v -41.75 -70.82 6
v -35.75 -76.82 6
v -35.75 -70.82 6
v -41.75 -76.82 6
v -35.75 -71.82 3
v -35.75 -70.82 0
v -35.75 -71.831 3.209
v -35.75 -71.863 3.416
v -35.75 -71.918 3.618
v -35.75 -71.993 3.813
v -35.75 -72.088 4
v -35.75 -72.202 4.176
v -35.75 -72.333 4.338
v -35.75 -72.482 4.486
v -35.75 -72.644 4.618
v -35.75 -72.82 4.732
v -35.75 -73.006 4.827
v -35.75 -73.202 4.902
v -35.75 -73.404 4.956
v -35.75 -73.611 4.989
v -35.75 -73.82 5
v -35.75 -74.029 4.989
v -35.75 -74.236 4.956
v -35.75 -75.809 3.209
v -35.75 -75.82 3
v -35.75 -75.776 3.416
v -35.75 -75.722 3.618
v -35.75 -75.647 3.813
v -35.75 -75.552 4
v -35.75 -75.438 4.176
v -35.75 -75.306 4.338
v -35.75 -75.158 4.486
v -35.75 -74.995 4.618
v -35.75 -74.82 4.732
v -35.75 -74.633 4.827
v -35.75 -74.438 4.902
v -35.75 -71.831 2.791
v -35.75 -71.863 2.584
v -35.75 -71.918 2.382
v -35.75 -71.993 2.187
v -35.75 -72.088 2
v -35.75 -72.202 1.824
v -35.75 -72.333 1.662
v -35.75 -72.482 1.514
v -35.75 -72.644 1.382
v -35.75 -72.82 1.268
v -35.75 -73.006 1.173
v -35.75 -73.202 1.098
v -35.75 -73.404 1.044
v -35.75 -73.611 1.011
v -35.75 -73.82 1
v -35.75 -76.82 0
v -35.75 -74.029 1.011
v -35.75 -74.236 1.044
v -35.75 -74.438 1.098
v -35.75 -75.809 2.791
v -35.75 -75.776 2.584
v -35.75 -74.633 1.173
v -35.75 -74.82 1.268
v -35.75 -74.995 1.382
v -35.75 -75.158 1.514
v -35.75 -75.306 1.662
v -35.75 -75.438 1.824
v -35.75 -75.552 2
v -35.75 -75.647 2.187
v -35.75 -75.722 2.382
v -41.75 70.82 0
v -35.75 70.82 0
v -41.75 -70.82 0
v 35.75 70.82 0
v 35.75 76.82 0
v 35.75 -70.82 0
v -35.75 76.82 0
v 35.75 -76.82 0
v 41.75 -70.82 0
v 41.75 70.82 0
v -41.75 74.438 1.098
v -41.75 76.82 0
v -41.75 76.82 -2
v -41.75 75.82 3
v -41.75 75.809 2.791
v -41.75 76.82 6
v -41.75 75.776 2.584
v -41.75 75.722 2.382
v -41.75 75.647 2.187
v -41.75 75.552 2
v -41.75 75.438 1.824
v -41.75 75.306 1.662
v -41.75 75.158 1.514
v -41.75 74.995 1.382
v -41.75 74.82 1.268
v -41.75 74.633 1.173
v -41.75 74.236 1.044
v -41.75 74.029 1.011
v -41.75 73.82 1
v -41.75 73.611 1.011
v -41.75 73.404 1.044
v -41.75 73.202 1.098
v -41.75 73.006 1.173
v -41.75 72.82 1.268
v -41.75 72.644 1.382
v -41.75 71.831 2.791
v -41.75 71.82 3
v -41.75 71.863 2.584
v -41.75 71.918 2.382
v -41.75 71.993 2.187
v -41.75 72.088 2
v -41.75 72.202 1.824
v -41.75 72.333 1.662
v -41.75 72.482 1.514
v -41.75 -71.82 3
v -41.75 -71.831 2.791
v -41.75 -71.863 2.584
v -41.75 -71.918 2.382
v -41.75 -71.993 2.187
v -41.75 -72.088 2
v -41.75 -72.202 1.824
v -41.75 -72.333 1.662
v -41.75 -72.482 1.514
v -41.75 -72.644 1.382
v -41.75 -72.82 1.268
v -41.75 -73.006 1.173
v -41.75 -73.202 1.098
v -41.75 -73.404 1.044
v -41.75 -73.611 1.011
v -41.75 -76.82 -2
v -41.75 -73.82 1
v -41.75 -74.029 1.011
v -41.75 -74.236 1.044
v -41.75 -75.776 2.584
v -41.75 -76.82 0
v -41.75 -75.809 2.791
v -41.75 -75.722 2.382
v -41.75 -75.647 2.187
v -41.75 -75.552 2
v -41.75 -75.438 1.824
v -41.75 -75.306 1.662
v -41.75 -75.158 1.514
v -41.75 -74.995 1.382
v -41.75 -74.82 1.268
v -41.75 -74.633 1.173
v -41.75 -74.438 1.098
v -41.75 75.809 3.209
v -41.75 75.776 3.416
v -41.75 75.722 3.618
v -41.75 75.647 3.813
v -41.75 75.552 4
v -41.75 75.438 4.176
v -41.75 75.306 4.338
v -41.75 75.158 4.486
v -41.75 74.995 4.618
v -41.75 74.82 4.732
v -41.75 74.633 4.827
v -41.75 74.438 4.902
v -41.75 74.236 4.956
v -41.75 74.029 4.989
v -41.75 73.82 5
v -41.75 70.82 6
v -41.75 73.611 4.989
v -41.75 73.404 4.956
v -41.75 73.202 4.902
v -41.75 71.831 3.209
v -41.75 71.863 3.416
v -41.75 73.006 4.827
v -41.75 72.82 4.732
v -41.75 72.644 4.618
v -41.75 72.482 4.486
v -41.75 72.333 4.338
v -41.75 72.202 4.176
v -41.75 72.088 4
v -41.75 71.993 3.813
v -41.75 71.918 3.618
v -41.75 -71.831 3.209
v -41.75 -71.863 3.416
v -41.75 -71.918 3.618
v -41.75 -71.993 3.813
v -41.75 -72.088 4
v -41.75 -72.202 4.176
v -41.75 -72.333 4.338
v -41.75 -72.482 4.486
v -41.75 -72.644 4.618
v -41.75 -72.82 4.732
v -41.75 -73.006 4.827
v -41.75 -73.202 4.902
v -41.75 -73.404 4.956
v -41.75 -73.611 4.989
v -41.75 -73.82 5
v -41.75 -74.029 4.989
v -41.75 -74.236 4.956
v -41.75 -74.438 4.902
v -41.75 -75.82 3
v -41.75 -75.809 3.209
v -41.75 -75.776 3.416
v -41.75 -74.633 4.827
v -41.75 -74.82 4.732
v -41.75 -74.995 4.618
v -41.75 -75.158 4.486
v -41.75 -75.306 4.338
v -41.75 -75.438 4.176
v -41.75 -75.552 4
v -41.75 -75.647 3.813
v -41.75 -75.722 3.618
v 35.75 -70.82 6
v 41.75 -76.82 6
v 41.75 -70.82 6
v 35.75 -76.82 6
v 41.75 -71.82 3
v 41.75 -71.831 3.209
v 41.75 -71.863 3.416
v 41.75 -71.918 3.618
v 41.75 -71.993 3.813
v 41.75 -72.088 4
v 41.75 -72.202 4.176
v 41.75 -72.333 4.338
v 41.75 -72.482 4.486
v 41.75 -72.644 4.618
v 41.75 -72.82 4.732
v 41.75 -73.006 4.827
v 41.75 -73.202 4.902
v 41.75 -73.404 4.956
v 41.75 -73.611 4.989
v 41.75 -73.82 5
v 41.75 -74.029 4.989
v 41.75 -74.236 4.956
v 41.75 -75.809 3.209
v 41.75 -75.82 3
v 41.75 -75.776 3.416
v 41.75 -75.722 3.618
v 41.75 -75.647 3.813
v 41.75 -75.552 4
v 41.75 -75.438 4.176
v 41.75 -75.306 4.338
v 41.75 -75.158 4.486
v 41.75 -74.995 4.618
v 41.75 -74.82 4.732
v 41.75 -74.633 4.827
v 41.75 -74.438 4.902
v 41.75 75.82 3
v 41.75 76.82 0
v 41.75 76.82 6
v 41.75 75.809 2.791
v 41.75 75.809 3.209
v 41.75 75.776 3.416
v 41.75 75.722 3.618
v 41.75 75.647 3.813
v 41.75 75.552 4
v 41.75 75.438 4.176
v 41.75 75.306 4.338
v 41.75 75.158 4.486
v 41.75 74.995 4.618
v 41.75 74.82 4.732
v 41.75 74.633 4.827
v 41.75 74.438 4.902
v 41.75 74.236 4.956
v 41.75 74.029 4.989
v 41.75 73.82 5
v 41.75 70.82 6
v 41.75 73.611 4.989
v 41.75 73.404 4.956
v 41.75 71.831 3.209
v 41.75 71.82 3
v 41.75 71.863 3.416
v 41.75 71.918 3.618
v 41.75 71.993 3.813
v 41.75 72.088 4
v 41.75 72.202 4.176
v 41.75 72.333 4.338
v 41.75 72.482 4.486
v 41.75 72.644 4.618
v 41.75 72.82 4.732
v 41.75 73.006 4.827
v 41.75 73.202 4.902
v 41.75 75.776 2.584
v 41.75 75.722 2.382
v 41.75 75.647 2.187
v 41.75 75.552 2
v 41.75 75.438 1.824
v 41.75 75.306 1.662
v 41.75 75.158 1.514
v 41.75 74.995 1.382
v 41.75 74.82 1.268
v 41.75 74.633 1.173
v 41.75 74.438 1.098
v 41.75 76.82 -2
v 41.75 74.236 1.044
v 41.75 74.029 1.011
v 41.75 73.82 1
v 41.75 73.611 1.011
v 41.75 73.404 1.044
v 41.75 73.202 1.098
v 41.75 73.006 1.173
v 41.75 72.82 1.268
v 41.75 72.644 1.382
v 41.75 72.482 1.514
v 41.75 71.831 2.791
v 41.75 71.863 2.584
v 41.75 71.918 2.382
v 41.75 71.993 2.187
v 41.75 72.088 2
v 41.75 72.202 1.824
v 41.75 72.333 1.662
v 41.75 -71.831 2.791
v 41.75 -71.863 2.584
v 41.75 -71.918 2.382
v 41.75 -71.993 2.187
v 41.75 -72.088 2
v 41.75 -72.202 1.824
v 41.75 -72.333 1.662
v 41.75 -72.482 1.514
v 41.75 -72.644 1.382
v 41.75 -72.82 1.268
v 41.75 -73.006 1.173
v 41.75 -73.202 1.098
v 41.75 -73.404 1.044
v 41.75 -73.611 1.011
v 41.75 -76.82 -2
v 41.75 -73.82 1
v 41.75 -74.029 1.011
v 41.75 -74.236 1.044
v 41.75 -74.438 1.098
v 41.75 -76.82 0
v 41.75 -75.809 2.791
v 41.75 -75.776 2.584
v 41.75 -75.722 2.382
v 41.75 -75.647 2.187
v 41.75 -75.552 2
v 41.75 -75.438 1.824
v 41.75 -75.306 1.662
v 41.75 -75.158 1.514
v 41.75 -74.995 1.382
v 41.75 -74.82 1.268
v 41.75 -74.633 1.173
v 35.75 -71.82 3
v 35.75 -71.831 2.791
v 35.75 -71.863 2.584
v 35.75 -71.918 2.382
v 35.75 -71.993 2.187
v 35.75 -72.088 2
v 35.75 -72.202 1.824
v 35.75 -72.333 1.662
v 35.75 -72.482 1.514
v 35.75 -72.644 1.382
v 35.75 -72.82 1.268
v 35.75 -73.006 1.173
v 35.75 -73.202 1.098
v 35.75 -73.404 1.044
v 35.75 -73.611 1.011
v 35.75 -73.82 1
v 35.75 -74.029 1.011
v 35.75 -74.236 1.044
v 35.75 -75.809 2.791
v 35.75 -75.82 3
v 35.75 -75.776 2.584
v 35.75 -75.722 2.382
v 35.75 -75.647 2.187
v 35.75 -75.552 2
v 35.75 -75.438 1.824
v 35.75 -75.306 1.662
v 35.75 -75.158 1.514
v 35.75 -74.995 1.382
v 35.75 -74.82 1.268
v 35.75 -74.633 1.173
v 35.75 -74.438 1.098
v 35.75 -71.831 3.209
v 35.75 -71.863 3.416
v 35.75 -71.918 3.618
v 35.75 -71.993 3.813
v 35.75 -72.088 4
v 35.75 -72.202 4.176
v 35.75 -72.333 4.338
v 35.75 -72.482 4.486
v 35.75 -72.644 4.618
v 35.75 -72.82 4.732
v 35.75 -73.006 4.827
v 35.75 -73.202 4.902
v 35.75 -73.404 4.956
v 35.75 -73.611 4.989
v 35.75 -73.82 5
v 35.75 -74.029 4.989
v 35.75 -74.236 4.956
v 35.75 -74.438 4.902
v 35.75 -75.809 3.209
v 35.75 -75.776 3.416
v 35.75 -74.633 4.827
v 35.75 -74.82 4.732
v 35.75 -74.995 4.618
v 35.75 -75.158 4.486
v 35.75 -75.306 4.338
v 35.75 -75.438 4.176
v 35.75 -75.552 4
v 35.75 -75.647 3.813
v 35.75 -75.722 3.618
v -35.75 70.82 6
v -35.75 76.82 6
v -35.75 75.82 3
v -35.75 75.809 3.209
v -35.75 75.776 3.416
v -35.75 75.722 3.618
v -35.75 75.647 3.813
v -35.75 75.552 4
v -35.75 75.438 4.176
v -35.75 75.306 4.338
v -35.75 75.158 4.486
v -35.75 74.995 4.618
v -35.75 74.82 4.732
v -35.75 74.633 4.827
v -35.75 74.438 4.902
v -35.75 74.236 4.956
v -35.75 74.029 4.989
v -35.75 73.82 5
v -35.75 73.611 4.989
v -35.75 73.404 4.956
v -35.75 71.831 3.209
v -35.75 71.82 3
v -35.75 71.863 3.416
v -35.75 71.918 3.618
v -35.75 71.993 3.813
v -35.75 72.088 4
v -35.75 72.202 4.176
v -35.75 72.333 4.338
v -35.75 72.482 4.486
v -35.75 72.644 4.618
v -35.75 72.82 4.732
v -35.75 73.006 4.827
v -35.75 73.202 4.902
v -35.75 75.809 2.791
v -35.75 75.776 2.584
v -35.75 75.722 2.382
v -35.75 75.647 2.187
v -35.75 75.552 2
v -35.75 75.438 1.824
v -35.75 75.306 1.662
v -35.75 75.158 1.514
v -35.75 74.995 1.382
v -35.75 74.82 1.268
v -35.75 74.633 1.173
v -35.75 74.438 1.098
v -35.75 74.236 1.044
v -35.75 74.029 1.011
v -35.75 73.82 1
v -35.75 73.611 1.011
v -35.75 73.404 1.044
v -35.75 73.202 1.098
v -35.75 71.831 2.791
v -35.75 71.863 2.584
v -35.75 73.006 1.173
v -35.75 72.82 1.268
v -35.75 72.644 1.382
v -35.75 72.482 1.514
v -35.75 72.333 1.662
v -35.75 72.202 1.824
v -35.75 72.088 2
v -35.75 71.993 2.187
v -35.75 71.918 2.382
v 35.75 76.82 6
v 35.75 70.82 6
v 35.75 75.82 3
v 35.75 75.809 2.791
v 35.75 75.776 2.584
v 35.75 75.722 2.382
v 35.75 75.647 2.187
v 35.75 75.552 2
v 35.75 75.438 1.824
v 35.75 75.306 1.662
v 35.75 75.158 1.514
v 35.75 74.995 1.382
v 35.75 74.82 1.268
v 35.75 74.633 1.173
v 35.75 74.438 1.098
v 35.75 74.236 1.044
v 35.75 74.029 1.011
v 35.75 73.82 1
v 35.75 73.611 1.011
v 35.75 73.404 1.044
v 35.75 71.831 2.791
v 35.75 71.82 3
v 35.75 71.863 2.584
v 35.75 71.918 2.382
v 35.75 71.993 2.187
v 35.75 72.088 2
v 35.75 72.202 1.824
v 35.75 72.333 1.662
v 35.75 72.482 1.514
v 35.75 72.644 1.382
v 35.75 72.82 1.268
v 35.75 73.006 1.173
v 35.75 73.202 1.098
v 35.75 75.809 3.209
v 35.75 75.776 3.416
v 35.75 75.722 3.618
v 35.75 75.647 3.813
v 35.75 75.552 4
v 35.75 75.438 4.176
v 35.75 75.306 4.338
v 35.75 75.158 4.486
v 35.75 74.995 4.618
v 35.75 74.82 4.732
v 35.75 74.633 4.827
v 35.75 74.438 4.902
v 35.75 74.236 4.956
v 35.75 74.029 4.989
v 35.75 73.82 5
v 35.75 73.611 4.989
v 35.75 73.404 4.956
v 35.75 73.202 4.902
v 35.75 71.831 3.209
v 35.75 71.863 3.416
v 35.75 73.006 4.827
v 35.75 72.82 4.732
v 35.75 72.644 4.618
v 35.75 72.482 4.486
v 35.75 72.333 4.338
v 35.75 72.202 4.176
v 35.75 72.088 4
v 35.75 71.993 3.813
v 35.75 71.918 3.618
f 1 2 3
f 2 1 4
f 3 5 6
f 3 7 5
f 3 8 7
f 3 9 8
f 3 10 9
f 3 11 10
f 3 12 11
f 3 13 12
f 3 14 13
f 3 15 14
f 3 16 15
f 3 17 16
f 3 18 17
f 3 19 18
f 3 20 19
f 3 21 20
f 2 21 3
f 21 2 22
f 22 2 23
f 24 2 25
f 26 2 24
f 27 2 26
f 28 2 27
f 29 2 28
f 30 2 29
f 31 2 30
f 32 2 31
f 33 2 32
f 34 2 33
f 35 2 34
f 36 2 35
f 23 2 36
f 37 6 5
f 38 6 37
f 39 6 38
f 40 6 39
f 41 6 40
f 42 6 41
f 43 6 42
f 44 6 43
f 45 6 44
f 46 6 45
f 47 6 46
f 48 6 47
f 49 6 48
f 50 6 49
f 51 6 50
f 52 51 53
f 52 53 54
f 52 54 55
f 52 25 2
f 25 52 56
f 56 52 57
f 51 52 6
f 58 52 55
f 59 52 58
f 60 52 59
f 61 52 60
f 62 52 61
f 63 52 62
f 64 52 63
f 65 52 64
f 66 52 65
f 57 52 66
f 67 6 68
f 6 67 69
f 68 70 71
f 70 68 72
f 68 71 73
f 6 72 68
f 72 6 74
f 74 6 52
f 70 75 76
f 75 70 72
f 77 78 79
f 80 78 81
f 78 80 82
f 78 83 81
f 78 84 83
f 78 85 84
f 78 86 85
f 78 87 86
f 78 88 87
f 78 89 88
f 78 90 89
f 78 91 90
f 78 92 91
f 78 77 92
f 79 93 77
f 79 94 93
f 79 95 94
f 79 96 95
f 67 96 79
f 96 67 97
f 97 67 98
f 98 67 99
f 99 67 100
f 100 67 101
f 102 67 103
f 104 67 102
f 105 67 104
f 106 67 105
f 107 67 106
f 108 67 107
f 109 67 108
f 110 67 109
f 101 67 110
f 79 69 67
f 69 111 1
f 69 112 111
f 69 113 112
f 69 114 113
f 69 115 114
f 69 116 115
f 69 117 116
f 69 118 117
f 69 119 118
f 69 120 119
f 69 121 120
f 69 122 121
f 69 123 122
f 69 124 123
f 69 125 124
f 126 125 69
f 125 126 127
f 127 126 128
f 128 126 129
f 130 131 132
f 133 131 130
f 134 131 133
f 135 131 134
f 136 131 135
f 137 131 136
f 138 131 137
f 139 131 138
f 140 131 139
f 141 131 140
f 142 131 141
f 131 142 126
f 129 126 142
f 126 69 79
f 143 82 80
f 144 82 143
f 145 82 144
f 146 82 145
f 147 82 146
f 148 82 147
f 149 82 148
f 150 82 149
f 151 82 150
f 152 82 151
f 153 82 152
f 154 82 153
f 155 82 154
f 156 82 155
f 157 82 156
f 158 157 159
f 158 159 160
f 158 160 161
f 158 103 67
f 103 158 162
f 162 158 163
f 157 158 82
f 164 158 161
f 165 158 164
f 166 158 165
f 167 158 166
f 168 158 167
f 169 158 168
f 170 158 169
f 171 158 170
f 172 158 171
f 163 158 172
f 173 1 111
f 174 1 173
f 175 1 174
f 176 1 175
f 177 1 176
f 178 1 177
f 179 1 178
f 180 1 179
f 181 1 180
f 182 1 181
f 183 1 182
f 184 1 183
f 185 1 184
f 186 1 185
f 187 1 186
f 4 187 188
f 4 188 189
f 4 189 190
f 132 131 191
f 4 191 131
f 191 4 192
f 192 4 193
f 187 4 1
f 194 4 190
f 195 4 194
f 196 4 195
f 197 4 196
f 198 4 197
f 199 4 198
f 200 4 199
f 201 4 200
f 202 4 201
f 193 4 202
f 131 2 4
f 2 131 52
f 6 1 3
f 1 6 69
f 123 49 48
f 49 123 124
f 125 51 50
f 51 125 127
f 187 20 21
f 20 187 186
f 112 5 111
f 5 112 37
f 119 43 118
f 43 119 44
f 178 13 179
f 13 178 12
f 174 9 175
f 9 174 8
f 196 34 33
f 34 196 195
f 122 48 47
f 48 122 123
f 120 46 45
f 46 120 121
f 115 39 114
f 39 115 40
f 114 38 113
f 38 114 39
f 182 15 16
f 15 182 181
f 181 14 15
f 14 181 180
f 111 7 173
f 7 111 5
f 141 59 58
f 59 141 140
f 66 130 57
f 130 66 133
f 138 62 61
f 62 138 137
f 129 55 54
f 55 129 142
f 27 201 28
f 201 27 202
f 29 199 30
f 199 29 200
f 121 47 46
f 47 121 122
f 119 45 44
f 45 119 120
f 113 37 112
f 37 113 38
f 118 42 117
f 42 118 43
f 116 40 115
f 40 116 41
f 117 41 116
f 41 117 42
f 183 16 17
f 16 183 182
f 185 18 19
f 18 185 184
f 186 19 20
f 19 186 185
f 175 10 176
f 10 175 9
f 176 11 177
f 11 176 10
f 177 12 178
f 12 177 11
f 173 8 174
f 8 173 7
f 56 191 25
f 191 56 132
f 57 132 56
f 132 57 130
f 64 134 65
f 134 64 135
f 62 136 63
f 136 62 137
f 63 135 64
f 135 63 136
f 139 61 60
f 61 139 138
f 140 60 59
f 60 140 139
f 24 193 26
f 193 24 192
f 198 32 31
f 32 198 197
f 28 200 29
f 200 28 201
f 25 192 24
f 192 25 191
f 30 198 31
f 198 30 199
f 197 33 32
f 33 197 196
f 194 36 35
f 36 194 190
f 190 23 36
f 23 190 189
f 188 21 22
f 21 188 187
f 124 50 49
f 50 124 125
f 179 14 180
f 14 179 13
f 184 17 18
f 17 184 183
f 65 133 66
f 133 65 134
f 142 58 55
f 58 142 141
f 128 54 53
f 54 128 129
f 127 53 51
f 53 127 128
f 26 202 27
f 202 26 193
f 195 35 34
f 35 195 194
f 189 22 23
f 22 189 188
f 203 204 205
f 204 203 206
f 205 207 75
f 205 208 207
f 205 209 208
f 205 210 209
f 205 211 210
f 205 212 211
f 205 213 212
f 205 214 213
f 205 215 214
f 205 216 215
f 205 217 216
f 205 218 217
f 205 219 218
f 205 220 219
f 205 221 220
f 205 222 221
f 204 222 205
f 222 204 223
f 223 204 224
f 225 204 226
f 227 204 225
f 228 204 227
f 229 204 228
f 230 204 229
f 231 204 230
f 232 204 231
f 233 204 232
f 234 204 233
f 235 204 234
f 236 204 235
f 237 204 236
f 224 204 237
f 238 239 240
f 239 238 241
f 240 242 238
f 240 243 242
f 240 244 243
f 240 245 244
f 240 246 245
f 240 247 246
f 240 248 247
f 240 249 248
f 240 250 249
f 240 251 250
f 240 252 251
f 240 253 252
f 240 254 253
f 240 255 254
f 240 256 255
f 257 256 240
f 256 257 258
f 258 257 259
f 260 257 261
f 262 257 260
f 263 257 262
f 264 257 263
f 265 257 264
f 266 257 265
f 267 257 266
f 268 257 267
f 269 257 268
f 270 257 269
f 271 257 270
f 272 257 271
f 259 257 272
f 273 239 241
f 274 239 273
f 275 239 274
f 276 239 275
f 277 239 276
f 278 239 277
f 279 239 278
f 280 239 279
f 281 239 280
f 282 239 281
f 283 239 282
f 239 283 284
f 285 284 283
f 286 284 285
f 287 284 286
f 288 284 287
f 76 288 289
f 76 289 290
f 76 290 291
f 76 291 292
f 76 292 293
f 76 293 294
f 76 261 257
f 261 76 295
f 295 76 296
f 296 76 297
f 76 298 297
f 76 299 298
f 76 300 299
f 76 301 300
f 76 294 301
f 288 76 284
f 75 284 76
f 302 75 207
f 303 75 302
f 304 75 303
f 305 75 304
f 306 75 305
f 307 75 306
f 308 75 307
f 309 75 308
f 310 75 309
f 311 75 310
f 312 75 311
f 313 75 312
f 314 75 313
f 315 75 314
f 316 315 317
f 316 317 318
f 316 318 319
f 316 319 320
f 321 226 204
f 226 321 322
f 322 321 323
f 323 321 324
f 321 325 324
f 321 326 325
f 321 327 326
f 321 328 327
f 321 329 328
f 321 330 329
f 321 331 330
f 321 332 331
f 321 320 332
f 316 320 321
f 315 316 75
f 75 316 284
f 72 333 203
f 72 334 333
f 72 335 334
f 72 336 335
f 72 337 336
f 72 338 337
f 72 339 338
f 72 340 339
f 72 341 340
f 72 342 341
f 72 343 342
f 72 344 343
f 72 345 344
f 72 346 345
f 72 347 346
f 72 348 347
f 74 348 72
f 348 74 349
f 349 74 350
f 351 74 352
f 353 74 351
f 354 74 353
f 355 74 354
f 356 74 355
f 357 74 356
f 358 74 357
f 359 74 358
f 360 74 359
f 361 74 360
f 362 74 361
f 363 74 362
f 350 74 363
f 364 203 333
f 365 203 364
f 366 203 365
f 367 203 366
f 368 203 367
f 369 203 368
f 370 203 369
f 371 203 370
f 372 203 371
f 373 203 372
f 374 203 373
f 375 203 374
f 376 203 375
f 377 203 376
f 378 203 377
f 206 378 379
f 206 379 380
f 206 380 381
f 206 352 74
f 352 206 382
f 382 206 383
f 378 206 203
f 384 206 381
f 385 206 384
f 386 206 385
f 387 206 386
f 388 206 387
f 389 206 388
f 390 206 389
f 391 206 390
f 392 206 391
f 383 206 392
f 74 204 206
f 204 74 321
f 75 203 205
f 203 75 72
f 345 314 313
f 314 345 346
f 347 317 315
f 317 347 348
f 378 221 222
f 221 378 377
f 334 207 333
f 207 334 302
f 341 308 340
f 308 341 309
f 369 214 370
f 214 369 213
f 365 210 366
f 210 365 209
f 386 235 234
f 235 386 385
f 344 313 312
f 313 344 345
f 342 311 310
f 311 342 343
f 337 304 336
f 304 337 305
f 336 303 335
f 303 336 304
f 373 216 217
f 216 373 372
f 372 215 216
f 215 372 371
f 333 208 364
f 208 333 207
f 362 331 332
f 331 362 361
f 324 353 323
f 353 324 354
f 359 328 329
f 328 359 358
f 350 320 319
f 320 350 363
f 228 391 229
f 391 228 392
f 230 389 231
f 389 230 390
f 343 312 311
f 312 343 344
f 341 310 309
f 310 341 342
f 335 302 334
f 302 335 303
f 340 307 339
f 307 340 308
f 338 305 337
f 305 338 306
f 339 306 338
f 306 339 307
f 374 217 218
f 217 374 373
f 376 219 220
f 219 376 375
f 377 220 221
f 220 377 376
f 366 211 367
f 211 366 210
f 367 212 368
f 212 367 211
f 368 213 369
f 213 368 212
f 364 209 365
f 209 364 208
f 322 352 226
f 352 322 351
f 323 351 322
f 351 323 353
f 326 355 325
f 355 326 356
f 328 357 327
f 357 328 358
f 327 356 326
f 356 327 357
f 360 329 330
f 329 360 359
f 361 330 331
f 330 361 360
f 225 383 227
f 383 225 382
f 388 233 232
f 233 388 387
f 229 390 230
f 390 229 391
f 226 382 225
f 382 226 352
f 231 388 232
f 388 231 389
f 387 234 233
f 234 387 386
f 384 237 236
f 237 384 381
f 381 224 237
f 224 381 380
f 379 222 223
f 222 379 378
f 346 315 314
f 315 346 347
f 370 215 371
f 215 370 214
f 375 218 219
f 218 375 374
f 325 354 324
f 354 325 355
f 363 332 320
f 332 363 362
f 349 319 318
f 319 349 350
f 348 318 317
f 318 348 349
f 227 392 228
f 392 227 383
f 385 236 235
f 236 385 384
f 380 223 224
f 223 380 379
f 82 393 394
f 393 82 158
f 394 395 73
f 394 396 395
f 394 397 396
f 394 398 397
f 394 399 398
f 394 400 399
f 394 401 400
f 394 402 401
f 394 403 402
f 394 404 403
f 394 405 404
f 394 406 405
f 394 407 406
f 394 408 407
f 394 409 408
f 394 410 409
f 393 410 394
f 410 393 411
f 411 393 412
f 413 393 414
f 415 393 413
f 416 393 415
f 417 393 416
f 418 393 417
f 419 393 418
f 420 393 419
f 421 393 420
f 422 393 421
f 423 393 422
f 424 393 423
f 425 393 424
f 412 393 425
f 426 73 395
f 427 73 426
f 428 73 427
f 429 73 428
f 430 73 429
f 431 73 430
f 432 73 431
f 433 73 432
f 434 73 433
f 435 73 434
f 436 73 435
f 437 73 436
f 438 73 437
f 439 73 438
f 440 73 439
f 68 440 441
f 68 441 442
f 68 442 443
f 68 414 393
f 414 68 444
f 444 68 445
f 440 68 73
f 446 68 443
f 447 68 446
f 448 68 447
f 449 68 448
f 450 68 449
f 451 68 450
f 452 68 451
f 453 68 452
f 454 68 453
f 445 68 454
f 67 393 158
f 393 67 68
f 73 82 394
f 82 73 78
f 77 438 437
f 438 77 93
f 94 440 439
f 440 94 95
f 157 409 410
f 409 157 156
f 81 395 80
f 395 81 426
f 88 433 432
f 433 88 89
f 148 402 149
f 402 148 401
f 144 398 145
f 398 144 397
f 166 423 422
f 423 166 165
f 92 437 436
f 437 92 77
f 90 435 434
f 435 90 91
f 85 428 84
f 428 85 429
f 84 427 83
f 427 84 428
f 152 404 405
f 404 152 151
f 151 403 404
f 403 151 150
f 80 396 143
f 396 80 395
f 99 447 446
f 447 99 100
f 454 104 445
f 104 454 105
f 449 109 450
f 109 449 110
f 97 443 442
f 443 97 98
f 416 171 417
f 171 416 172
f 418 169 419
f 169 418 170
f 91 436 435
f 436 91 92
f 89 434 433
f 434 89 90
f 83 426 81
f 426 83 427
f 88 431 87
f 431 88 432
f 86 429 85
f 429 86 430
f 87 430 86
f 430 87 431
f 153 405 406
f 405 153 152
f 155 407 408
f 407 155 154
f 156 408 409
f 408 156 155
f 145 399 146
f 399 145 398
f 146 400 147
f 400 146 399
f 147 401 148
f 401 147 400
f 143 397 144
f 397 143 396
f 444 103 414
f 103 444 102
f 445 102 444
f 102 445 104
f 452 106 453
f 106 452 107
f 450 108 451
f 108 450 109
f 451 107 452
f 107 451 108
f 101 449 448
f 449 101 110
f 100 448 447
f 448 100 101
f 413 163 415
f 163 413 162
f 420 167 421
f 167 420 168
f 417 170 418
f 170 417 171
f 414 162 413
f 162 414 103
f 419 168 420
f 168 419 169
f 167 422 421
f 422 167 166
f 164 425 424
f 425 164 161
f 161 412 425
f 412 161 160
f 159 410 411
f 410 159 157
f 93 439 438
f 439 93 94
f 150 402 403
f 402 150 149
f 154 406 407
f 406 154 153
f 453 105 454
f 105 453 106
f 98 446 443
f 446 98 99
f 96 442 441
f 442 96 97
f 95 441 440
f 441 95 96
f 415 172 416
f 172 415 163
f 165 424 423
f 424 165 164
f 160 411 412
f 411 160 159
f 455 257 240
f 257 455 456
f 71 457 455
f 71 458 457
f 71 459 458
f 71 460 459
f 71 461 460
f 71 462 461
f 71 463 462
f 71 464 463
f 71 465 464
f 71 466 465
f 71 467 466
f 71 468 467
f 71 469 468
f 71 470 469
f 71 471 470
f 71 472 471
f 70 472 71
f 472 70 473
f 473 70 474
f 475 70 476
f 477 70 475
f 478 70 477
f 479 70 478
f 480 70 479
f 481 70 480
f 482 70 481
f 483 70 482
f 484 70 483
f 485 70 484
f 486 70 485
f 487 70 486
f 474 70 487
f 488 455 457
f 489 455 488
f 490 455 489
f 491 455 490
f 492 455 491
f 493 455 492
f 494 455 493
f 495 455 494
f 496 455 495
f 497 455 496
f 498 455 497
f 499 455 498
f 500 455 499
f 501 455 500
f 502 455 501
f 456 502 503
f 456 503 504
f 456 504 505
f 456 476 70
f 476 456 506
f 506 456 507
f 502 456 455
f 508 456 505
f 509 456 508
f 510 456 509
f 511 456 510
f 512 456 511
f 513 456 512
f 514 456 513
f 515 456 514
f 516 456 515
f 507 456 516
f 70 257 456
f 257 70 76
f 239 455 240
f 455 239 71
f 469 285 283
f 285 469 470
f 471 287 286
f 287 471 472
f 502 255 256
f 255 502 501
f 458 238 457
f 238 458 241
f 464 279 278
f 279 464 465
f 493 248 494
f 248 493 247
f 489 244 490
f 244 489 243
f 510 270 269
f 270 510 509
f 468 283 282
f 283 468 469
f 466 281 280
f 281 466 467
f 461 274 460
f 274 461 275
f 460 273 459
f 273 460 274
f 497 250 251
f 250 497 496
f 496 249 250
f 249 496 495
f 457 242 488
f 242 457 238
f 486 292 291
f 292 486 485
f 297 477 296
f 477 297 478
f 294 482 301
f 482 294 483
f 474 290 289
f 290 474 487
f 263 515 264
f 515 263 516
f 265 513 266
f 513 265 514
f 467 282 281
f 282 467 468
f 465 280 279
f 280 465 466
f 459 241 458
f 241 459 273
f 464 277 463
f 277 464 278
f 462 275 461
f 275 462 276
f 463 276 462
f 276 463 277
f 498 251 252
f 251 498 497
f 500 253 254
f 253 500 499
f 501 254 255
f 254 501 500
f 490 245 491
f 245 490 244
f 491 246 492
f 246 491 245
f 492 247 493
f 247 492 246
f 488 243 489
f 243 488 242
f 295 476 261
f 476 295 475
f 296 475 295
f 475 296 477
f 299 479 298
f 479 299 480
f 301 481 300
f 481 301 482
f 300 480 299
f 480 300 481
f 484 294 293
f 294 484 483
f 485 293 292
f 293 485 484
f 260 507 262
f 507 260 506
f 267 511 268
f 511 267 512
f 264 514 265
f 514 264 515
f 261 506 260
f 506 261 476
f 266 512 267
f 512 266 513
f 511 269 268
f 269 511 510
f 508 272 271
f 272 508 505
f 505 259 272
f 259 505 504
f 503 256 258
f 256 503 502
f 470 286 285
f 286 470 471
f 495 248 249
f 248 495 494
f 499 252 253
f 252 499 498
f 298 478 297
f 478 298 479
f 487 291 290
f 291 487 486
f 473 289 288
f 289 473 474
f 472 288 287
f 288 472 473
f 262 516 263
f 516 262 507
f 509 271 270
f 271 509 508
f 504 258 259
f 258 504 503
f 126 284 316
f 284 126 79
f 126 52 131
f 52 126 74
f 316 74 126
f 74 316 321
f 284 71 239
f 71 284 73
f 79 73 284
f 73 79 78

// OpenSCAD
degree=30;

card_size=93.9;
size_out = 10;

wall_size=2;
wall_size_small=1.5;
screw_size=3;

square_size=10;

size_z=36.5;
card_slot=4;

size_x=68.5;

total_y=cos(degree)*card_size*2-screw_size-(screw_size+screw_size*3)+screw_size*2;

module mount() // дупка резбова втулка
{
	difference()
	{
		cube([screw_size*2,screw_size*2,screw_size*2], center=true);
		
		cylinder(d=screw_size+1,h=screw_size*2+1, $fn=60, center=true);
	}
}

translate([0,0,-wall_size/2])
cube([size_x+2*(wall_size_small+screw_size*2),total_y,wall_size], center=true);

for(y=[-1:2:1])
{
	for(x=[-1:2:1])
	{
		translate([((size_x+2*(wall_size_small+screw_size*2))/2-screw_size)*x,((total_y)/2-screw_size)*y,screw_size])
		rotate([0,90,0])
		mount();
	}
}
